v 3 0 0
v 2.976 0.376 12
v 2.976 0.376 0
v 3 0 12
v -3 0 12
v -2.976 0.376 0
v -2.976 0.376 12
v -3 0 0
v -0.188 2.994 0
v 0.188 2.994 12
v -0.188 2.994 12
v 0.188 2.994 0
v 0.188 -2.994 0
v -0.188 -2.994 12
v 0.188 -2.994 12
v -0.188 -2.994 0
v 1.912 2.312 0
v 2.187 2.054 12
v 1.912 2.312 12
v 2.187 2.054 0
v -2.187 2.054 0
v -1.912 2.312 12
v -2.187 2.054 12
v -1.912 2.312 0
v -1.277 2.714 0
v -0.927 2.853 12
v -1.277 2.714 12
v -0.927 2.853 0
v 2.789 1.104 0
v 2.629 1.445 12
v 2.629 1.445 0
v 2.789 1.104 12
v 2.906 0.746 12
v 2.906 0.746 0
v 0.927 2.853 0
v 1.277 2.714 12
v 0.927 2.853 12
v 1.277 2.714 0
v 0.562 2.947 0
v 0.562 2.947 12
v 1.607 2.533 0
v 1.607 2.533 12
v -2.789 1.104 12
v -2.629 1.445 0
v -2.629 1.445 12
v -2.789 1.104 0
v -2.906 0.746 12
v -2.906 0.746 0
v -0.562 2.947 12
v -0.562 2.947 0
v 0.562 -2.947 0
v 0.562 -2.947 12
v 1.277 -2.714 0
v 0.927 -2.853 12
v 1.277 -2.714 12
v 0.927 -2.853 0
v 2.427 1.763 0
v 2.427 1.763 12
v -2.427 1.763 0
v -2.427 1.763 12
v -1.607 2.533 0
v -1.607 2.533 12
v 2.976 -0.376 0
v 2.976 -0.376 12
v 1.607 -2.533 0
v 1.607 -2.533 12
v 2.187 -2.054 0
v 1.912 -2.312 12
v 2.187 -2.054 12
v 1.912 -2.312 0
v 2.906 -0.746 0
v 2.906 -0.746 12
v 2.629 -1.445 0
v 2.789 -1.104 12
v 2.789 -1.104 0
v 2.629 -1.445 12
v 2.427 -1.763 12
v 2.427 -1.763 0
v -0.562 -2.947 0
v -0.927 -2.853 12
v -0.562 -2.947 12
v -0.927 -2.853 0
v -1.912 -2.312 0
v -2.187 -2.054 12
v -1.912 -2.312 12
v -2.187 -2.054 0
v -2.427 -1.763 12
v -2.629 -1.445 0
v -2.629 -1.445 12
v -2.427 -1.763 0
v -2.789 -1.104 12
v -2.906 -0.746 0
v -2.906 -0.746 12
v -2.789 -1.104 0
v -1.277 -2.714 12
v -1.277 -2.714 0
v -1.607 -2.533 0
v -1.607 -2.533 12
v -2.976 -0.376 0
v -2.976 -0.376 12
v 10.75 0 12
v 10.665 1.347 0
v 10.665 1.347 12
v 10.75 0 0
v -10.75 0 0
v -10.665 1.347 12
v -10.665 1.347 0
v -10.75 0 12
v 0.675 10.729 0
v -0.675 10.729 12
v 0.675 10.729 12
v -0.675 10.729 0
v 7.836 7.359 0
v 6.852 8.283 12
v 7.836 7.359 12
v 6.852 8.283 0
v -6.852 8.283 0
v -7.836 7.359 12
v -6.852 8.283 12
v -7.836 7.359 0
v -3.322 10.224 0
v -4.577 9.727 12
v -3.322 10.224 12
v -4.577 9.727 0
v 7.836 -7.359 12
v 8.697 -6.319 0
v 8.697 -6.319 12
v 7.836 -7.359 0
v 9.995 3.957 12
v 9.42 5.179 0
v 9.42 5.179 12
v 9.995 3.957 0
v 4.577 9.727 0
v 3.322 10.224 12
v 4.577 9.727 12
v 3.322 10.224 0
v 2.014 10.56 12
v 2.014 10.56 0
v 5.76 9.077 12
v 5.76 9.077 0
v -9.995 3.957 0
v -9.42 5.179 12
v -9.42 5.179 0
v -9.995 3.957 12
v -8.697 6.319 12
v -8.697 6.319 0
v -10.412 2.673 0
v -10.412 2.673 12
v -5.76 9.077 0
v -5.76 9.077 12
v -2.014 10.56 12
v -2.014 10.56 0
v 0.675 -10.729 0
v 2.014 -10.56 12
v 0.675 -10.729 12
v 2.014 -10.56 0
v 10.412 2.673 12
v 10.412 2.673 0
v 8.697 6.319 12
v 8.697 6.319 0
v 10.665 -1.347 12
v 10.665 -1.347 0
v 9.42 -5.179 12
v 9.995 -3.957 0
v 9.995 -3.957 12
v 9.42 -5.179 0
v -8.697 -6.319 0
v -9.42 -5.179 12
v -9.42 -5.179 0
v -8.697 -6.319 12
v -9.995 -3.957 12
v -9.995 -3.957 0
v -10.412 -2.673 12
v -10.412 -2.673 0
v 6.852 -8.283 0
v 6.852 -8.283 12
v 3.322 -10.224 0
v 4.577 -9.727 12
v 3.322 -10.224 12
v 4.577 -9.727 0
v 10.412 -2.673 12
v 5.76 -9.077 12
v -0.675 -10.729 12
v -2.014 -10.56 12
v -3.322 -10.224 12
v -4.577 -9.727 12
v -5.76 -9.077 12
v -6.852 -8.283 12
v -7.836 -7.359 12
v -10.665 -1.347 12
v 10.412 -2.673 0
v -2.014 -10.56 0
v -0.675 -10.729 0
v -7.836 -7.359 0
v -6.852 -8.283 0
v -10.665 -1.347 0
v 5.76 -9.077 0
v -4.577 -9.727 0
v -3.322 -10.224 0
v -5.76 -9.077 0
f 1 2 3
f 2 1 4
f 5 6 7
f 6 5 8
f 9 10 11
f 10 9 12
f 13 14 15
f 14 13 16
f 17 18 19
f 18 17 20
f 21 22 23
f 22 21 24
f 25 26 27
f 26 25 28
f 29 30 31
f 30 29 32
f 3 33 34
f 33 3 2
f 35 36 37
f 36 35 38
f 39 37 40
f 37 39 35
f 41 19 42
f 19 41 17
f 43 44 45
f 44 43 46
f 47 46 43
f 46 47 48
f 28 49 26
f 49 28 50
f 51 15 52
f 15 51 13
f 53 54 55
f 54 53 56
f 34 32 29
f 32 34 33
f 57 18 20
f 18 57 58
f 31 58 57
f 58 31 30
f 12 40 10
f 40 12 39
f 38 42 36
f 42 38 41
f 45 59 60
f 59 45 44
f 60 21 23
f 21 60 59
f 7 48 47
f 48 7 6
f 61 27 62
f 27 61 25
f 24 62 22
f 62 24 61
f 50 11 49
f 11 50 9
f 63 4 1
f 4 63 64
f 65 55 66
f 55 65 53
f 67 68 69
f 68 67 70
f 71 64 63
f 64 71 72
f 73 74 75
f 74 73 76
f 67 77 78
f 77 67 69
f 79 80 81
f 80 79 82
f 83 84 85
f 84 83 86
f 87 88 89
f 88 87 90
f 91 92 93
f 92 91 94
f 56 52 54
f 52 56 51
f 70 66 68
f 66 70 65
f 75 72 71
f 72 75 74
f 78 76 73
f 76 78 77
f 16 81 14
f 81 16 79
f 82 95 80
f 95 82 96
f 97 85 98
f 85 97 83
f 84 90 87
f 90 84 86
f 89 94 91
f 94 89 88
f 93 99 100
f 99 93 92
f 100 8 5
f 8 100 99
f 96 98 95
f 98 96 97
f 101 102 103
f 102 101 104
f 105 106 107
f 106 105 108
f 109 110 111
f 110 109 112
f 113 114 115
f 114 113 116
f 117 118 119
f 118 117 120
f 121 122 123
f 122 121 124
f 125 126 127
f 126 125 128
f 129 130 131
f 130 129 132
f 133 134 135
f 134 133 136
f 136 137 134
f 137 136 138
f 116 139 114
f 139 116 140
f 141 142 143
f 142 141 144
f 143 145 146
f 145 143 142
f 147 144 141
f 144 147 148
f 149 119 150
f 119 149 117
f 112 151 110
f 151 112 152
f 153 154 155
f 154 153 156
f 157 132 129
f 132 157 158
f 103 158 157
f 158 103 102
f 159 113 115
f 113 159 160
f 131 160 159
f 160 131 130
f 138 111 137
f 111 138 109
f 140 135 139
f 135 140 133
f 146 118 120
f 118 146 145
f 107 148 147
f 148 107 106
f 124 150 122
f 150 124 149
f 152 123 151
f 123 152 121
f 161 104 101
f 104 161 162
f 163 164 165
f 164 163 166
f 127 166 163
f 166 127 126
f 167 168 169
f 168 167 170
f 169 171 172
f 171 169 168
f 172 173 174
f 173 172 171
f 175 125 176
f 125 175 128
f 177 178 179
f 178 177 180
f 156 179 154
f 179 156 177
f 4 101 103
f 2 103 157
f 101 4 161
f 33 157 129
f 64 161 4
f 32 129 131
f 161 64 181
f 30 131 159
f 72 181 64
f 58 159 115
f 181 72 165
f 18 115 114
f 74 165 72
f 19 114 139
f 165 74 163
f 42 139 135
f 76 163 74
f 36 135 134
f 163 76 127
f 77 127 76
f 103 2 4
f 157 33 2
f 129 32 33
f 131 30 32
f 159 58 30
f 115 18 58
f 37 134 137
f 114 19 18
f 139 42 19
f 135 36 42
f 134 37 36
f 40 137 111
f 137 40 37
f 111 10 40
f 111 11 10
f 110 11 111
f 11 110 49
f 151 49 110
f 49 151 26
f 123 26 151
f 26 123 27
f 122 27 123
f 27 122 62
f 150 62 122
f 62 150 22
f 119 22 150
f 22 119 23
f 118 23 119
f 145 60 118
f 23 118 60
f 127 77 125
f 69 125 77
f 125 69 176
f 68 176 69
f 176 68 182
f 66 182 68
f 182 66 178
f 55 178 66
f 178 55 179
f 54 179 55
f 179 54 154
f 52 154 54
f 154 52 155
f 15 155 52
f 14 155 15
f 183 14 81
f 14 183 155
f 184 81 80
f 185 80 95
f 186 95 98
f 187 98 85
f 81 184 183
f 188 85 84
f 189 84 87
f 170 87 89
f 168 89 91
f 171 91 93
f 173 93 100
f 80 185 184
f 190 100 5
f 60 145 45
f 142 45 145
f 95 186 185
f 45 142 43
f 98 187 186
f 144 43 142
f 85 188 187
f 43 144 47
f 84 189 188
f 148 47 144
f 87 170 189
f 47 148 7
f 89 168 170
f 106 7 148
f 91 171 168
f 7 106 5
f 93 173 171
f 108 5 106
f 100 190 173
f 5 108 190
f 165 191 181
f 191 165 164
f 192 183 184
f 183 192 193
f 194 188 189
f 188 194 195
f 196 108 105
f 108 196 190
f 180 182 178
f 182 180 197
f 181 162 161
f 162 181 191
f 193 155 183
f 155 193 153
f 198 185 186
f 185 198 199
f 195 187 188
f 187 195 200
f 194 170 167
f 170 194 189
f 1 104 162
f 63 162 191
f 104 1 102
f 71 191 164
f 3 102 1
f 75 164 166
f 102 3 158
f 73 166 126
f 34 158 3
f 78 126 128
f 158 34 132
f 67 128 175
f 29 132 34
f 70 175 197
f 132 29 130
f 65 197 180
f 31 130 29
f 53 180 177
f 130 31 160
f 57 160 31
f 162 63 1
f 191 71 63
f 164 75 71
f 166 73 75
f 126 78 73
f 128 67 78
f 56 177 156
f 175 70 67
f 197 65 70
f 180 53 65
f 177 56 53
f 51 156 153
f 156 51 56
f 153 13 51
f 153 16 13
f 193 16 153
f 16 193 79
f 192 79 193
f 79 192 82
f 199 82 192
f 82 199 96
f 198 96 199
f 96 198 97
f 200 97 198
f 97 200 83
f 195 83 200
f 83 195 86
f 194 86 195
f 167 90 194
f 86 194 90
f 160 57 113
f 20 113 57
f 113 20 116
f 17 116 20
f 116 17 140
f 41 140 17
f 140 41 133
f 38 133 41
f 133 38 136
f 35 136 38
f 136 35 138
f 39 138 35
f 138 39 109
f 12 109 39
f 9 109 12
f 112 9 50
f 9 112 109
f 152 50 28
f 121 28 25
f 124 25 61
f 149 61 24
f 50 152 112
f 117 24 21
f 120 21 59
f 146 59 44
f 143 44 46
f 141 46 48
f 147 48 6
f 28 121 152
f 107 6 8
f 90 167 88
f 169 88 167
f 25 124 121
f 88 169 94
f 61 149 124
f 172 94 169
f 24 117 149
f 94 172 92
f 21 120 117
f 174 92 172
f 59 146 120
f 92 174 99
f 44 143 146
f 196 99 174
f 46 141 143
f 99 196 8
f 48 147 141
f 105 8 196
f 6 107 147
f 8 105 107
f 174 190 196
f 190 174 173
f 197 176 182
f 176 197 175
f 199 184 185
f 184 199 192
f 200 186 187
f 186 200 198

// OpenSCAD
$fn = 50;


difference() {
	union() {
		*color(alpha = 1.0000000000, c = "gray") {
			translate(v = [0, 7, 0]) {
				linear_extrude(height = 1) {
					text(font = "Arial:style=Bold", halign = "center", size = 4.5000000000, text = "COMMENT circle main", valign = "center");
				}
			}
		}
		cylinder(h = 12, r = 10.7500000000);
	}
	union() {
		*color(alpha = 1.0000000000, c = "gray") {
			translate(v = [0, 7, 0]) {
				linear_extrude(height = 1) {
					text(font = "Arial:style=Bold", halign = "center", size = 4.5000000000, text = "COMMENT holes main", valign = "center");
				}
			}
		}
		translate(v = [0.0000000000, 0.0000000000, -50.0000000000]) {
			cylinder(h = 100, r = 3.0000000000);
		}
		translate(v = [0.0000000000, 0.0000000000, -50.0000000000]) {
			cylinder(h = 100, r = 3.0000000000);
		}
		translate(v = [0.0000000000, 0.0000000000, -50.0000000000]) {
			cylinder(h = 100, r = 3.0000000000);
		}
		translate(v = [0.0000000000, 0.0000000000, -50.0000000000]) {
			cylinder(h = 100, r = 1.5000000000);
		}
		translate(v = [0.0000000000, 0.0000000000, -50.0000000000]) {
			cylinder(h = 100, r = 1.5000000000);
		}
		translate(v = [0.0000000000, 0.0000000000, -50.0000000000]) {
			cylinder(h = 100, r = 1.5000000000);
		}
	}
}
